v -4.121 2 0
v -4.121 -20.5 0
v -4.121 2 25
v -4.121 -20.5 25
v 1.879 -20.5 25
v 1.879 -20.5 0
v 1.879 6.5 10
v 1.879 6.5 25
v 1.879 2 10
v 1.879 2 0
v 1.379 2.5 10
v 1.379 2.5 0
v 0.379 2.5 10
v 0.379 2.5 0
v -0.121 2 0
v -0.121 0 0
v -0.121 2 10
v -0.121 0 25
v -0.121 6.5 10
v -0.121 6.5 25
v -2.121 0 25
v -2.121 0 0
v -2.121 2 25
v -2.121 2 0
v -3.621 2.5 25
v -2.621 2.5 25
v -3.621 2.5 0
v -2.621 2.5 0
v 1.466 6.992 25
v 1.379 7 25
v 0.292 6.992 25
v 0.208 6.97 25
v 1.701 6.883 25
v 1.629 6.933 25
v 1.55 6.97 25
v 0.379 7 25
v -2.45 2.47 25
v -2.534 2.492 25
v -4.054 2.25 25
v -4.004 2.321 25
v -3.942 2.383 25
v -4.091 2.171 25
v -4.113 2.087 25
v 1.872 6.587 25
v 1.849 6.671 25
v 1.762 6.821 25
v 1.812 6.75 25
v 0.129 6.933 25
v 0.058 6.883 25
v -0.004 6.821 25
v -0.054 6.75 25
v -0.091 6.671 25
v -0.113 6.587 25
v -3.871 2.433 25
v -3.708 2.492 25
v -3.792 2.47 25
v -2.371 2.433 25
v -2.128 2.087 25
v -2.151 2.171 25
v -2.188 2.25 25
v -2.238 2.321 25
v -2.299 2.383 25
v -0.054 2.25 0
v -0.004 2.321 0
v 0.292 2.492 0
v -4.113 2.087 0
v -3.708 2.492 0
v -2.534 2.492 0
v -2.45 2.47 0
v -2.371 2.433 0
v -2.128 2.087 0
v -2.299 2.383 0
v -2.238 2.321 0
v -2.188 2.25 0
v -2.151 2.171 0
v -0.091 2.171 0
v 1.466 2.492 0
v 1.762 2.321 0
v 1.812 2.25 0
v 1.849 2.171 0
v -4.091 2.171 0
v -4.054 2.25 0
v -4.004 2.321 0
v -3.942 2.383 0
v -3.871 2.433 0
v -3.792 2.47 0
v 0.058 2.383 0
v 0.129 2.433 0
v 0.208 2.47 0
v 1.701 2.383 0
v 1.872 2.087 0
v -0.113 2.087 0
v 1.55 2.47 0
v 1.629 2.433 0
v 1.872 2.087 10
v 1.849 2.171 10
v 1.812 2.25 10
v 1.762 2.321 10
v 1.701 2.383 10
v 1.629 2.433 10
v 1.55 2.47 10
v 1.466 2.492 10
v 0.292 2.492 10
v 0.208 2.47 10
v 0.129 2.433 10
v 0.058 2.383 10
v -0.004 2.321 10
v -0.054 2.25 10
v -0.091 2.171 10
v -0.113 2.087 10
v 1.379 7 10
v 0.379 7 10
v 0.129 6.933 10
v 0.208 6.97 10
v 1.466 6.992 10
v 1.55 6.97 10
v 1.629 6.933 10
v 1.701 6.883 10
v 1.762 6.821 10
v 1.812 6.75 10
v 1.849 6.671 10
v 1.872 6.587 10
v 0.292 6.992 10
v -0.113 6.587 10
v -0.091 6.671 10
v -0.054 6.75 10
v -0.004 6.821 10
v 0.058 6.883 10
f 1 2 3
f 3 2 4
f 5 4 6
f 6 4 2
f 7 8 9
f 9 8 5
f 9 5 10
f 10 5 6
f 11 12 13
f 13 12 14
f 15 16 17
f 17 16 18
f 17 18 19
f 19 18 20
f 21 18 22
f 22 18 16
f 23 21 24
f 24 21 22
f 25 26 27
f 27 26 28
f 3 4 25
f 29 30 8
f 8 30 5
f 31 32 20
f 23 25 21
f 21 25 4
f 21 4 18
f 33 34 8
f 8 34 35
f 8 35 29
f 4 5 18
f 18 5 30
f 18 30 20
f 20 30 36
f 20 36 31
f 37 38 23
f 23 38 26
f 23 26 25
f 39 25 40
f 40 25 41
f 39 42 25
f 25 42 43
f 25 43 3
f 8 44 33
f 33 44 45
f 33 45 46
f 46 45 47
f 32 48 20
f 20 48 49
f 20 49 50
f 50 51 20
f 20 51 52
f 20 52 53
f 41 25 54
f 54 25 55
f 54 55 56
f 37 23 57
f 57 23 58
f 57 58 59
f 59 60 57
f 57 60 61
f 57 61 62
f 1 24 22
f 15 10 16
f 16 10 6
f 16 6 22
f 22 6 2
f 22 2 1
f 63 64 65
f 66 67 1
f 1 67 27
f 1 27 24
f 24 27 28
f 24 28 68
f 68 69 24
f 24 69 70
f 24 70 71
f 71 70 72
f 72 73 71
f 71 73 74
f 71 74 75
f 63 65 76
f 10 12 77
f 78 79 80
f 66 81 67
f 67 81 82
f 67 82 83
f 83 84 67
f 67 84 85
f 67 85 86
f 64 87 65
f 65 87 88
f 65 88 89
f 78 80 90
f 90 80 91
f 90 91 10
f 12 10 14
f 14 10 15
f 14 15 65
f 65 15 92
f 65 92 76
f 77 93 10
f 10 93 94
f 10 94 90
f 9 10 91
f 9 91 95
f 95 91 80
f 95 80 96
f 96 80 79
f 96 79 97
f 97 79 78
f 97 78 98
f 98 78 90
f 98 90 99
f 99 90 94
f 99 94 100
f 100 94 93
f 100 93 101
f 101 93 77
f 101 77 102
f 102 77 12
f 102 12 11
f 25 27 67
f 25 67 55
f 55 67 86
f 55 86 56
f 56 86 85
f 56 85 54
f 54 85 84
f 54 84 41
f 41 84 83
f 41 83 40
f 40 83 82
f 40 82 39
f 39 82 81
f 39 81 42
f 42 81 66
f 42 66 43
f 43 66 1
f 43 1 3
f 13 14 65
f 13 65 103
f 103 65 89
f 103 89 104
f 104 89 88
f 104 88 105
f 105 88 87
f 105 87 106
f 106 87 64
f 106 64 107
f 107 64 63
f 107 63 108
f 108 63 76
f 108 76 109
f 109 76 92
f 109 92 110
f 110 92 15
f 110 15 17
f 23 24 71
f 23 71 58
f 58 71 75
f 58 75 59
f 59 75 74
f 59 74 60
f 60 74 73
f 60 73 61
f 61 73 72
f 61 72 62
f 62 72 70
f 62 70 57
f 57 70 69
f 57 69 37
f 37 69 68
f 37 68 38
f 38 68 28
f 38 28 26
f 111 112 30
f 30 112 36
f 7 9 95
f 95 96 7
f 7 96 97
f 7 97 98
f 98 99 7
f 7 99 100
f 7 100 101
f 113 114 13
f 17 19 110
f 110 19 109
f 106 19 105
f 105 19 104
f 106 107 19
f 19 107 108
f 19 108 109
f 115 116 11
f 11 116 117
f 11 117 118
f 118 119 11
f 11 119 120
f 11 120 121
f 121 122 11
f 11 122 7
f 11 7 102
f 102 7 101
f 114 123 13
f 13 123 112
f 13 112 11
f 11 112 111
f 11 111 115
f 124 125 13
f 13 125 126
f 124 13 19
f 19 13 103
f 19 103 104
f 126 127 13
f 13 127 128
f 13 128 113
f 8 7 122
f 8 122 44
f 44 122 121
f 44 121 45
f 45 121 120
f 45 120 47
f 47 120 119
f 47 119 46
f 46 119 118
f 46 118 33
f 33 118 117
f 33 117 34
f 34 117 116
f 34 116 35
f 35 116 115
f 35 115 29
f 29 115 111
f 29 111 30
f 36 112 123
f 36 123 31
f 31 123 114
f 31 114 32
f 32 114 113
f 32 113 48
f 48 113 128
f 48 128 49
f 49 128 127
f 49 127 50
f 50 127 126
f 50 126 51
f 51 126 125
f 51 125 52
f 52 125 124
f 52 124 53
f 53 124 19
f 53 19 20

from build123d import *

# Parameters (mm, degrees)
BOSS_EXTRU_1_DEPTH = 25
CONG_1_R           = 0.5
ESQUISSE2_W        = 15
ESQUISSE2_H        = 5
BOSS_EXTRU_2_DEPTH = 2
CONG_2_R           = 0.5


with BuildPart() as part:
    # Esquisse1 → Boss.-Extru.1 (new body)
    with BuildSketch(Plane.XY):
        Polygon((-4.120689655, 2.5), (-2.120689655, 2.5), (-2.120689655, 0), (-0.120689655, 0), (-0.120689655, 2.5), (1.879310345, 2.5), (1.879310345, -20.5), (-4.120689655, -20.5), align=None)
    extrude(amount=BOSS_EXTRU_1_DEPTH)

    # Congé1
    cong_1_edges = [part.edges().sort_by_distance(p)[0] for p in [
        (-4.120689655, 2.5, 12.5),
        (-2.120689655, 2.5, 12.5),
        (-0.120689655, 2.5, 12.5),
        (1.879310345, 2.5, 12.5),
    ]]
    fillet(cong_1_edges, radius=CONG_1_R)

    # Esquisse2 → Boss.-Extru.2 (add)
    with BuildSketch(Plane(origin=(1.879310345, 0, 0), x_dir=(0, 0, -1), z_dir=(1, 0, 0))):
        with Locations((-17.5, 4.5)):
            Rectangle(ESQUISSE2_W, ESQUISSE2_H)
    extrude(amount=-BOSS_EXTRU_2_DEPTH)

    # Congé2
    cong_2_edges = [part.edges().sort_by_distance(p)[0] for p in [
        (-0.120689655, 7, 17.5),
        (1.879310345, 7, 17.5),
    ]]
    fillet(cong_2_edges, radius=CONG_2_R)


solid = part.part
